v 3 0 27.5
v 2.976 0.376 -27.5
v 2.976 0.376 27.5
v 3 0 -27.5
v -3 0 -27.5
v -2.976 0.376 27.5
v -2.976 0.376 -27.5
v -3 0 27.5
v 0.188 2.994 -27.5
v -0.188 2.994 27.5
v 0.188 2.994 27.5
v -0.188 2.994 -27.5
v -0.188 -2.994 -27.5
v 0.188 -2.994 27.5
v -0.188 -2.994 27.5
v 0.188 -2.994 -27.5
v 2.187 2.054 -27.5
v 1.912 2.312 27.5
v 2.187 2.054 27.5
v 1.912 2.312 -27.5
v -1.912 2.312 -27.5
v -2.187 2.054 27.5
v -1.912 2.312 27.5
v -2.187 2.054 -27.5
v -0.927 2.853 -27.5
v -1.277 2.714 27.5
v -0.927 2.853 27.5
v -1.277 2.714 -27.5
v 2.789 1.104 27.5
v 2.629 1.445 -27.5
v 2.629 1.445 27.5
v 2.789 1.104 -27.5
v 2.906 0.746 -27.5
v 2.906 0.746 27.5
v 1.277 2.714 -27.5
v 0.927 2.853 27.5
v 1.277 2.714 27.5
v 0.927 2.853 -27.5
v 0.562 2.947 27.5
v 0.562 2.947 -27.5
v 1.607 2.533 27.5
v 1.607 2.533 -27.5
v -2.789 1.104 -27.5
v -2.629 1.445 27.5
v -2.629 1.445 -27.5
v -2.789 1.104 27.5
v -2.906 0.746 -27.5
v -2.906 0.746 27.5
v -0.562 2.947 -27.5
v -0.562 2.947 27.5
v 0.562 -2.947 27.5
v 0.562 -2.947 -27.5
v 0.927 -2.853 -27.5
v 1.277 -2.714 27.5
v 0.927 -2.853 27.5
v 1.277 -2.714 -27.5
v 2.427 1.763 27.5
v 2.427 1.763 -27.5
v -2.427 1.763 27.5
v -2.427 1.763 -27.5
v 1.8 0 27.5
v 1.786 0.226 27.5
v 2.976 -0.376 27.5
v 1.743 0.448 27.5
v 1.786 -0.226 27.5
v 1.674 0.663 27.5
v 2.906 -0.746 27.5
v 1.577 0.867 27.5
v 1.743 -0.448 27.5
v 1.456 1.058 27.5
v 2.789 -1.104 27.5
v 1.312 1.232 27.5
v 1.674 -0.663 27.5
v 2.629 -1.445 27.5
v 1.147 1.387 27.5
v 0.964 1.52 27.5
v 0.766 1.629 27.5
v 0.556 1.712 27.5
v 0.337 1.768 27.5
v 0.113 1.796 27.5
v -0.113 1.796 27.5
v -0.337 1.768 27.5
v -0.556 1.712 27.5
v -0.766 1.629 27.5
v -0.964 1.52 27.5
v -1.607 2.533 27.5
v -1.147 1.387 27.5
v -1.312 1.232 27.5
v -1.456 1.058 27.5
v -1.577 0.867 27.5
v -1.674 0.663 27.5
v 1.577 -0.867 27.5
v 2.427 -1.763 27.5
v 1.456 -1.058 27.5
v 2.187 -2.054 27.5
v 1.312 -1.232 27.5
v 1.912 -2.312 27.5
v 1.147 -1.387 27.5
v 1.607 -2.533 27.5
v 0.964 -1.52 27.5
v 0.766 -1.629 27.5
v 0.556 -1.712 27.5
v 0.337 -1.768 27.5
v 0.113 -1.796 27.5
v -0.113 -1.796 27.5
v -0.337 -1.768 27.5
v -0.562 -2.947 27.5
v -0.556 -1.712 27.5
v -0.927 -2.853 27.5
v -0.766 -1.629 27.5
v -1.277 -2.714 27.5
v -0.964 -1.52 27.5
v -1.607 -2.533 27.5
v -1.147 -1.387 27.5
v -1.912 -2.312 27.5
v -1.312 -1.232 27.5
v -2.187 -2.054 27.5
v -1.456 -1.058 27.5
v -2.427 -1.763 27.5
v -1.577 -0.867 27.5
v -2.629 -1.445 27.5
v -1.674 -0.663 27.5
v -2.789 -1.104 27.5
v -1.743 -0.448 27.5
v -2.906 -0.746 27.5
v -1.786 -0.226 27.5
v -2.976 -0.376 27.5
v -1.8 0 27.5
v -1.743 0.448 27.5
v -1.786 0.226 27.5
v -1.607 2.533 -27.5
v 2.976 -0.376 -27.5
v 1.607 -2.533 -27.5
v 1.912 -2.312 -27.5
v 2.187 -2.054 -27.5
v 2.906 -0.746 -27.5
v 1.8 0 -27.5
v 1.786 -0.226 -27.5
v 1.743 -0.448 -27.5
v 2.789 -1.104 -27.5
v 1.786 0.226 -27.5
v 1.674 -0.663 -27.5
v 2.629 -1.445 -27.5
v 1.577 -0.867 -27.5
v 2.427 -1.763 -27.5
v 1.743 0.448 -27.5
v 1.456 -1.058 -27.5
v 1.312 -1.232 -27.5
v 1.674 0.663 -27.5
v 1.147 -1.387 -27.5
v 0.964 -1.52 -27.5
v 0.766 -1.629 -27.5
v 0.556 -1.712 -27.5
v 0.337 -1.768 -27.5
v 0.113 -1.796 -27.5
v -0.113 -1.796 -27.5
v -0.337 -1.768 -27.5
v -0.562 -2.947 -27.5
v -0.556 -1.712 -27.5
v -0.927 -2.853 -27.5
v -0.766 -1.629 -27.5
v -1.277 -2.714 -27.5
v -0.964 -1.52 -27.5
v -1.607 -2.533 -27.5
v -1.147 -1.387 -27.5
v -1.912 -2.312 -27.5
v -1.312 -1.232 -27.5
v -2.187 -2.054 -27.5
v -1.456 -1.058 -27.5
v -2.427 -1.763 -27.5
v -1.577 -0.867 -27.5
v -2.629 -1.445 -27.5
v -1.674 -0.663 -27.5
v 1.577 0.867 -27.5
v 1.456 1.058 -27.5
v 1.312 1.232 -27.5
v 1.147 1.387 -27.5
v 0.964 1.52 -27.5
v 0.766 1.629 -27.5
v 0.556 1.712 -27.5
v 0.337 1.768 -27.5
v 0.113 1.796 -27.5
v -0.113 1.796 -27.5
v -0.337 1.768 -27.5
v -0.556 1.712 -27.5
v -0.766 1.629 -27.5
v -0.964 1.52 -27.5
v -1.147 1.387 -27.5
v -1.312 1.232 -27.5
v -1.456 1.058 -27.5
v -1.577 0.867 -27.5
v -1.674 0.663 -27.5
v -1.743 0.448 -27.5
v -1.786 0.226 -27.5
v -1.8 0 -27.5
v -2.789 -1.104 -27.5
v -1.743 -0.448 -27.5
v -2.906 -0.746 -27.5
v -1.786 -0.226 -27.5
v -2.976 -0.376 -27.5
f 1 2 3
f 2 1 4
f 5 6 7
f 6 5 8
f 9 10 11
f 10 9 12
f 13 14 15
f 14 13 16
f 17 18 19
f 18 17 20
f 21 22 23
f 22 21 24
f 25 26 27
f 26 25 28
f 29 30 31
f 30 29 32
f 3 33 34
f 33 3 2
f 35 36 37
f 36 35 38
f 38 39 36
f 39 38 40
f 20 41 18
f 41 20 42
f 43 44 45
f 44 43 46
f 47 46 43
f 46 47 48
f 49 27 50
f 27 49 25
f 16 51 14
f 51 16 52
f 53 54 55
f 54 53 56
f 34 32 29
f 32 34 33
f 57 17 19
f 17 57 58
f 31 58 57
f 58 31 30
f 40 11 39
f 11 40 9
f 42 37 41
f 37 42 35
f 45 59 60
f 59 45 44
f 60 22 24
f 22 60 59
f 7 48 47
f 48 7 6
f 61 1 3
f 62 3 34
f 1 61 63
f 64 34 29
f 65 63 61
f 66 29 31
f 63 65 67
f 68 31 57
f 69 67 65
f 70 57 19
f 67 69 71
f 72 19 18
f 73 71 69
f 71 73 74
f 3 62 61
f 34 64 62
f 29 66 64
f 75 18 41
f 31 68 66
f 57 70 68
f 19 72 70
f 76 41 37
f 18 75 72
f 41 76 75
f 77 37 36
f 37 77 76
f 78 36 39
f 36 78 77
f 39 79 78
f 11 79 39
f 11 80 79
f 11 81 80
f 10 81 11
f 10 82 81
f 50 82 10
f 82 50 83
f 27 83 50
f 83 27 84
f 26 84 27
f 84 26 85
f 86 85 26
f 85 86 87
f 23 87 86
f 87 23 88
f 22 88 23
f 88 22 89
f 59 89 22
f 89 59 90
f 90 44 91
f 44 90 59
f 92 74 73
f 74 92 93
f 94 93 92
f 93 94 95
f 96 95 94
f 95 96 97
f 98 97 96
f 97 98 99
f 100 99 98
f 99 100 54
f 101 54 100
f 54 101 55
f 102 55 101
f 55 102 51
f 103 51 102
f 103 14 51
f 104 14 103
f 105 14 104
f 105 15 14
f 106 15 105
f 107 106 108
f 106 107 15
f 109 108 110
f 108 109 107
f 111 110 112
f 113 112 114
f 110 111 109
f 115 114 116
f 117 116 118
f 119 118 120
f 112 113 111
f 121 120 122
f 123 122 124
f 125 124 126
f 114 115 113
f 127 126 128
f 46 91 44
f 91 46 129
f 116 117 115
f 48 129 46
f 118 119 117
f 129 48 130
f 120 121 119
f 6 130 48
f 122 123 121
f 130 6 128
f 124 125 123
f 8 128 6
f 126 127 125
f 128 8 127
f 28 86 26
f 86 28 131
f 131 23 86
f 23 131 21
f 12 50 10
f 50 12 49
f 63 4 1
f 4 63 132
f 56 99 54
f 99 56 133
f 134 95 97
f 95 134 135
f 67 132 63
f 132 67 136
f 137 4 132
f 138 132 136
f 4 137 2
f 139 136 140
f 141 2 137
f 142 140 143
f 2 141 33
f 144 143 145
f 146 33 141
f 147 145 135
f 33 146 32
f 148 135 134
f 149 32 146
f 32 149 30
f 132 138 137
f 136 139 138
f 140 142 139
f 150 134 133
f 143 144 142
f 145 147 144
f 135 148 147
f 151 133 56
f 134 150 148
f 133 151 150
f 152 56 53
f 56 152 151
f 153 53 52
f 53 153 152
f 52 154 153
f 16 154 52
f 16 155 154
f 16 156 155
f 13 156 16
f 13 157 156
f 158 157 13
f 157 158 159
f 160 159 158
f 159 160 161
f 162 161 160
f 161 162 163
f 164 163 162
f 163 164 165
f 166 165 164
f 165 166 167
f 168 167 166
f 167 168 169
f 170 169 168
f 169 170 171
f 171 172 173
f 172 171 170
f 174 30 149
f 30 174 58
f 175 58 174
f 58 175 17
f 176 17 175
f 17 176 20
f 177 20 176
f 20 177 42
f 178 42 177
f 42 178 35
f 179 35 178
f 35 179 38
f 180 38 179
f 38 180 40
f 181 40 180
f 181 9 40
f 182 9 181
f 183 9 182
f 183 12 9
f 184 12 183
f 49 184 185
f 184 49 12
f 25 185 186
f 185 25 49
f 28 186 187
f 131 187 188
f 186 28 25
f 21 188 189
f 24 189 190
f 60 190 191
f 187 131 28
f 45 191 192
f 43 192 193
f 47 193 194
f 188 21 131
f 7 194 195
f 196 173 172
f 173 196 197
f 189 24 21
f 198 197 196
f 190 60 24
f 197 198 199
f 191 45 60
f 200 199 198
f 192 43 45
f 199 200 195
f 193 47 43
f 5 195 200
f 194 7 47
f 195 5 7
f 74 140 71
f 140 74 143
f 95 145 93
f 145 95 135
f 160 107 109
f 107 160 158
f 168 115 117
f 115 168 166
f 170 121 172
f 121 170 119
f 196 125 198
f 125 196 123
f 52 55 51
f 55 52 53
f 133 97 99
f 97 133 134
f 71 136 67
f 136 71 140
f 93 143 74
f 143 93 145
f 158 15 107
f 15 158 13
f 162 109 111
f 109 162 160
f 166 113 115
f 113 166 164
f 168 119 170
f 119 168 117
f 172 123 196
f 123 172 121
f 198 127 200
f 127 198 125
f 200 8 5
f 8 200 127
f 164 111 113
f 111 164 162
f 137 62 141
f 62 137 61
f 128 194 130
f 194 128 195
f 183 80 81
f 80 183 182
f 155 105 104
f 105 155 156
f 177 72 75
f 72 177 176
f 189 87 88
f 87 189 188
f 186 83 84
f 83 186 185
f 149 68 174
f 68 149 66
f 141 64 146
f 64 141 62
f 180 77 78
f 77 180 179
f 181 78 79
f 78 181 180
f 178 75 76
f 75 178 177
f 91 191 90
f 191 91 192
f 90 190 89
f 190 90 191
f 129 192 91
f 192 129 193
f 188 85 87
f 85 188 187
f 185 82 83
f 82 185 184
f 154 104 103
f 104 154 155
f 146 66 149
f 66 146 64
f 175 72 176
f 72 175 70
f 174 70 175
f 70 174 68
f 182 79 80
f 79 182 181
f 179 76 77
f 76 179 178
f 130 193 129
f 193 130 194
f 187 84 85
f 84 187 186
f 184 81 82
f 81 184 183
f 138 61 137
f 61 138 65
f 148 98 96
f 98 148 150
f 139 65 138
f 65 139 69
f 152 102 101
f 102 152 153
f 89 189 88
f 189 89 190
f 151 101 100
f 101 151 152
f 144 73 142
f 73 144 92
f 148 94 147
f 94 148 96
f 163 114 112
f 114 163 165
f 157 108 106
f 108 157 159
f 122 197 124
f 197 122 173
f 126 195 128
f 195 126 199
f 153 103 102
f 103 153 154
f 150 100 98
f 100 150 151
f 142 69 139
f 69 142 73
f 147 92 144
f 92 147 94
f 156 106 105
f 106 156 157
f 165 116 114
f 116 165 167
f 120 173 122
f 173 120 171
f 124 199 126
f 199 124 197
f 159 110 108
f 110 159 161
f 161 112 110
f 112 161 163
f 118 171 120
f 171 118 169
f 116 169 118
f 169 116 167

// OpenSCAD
$fn = 50;


difference() {
	union() {
		translate(v = [0, 0, -27.5000000000]) {
			cylinder(h = 55, r = 3.0000000000);
		}
	}
	union() {
		translate(v = [0, 0, -100.0000000000]) {
			cylinder(h = 200, r = 1.8000000000);
		}
	}
}
